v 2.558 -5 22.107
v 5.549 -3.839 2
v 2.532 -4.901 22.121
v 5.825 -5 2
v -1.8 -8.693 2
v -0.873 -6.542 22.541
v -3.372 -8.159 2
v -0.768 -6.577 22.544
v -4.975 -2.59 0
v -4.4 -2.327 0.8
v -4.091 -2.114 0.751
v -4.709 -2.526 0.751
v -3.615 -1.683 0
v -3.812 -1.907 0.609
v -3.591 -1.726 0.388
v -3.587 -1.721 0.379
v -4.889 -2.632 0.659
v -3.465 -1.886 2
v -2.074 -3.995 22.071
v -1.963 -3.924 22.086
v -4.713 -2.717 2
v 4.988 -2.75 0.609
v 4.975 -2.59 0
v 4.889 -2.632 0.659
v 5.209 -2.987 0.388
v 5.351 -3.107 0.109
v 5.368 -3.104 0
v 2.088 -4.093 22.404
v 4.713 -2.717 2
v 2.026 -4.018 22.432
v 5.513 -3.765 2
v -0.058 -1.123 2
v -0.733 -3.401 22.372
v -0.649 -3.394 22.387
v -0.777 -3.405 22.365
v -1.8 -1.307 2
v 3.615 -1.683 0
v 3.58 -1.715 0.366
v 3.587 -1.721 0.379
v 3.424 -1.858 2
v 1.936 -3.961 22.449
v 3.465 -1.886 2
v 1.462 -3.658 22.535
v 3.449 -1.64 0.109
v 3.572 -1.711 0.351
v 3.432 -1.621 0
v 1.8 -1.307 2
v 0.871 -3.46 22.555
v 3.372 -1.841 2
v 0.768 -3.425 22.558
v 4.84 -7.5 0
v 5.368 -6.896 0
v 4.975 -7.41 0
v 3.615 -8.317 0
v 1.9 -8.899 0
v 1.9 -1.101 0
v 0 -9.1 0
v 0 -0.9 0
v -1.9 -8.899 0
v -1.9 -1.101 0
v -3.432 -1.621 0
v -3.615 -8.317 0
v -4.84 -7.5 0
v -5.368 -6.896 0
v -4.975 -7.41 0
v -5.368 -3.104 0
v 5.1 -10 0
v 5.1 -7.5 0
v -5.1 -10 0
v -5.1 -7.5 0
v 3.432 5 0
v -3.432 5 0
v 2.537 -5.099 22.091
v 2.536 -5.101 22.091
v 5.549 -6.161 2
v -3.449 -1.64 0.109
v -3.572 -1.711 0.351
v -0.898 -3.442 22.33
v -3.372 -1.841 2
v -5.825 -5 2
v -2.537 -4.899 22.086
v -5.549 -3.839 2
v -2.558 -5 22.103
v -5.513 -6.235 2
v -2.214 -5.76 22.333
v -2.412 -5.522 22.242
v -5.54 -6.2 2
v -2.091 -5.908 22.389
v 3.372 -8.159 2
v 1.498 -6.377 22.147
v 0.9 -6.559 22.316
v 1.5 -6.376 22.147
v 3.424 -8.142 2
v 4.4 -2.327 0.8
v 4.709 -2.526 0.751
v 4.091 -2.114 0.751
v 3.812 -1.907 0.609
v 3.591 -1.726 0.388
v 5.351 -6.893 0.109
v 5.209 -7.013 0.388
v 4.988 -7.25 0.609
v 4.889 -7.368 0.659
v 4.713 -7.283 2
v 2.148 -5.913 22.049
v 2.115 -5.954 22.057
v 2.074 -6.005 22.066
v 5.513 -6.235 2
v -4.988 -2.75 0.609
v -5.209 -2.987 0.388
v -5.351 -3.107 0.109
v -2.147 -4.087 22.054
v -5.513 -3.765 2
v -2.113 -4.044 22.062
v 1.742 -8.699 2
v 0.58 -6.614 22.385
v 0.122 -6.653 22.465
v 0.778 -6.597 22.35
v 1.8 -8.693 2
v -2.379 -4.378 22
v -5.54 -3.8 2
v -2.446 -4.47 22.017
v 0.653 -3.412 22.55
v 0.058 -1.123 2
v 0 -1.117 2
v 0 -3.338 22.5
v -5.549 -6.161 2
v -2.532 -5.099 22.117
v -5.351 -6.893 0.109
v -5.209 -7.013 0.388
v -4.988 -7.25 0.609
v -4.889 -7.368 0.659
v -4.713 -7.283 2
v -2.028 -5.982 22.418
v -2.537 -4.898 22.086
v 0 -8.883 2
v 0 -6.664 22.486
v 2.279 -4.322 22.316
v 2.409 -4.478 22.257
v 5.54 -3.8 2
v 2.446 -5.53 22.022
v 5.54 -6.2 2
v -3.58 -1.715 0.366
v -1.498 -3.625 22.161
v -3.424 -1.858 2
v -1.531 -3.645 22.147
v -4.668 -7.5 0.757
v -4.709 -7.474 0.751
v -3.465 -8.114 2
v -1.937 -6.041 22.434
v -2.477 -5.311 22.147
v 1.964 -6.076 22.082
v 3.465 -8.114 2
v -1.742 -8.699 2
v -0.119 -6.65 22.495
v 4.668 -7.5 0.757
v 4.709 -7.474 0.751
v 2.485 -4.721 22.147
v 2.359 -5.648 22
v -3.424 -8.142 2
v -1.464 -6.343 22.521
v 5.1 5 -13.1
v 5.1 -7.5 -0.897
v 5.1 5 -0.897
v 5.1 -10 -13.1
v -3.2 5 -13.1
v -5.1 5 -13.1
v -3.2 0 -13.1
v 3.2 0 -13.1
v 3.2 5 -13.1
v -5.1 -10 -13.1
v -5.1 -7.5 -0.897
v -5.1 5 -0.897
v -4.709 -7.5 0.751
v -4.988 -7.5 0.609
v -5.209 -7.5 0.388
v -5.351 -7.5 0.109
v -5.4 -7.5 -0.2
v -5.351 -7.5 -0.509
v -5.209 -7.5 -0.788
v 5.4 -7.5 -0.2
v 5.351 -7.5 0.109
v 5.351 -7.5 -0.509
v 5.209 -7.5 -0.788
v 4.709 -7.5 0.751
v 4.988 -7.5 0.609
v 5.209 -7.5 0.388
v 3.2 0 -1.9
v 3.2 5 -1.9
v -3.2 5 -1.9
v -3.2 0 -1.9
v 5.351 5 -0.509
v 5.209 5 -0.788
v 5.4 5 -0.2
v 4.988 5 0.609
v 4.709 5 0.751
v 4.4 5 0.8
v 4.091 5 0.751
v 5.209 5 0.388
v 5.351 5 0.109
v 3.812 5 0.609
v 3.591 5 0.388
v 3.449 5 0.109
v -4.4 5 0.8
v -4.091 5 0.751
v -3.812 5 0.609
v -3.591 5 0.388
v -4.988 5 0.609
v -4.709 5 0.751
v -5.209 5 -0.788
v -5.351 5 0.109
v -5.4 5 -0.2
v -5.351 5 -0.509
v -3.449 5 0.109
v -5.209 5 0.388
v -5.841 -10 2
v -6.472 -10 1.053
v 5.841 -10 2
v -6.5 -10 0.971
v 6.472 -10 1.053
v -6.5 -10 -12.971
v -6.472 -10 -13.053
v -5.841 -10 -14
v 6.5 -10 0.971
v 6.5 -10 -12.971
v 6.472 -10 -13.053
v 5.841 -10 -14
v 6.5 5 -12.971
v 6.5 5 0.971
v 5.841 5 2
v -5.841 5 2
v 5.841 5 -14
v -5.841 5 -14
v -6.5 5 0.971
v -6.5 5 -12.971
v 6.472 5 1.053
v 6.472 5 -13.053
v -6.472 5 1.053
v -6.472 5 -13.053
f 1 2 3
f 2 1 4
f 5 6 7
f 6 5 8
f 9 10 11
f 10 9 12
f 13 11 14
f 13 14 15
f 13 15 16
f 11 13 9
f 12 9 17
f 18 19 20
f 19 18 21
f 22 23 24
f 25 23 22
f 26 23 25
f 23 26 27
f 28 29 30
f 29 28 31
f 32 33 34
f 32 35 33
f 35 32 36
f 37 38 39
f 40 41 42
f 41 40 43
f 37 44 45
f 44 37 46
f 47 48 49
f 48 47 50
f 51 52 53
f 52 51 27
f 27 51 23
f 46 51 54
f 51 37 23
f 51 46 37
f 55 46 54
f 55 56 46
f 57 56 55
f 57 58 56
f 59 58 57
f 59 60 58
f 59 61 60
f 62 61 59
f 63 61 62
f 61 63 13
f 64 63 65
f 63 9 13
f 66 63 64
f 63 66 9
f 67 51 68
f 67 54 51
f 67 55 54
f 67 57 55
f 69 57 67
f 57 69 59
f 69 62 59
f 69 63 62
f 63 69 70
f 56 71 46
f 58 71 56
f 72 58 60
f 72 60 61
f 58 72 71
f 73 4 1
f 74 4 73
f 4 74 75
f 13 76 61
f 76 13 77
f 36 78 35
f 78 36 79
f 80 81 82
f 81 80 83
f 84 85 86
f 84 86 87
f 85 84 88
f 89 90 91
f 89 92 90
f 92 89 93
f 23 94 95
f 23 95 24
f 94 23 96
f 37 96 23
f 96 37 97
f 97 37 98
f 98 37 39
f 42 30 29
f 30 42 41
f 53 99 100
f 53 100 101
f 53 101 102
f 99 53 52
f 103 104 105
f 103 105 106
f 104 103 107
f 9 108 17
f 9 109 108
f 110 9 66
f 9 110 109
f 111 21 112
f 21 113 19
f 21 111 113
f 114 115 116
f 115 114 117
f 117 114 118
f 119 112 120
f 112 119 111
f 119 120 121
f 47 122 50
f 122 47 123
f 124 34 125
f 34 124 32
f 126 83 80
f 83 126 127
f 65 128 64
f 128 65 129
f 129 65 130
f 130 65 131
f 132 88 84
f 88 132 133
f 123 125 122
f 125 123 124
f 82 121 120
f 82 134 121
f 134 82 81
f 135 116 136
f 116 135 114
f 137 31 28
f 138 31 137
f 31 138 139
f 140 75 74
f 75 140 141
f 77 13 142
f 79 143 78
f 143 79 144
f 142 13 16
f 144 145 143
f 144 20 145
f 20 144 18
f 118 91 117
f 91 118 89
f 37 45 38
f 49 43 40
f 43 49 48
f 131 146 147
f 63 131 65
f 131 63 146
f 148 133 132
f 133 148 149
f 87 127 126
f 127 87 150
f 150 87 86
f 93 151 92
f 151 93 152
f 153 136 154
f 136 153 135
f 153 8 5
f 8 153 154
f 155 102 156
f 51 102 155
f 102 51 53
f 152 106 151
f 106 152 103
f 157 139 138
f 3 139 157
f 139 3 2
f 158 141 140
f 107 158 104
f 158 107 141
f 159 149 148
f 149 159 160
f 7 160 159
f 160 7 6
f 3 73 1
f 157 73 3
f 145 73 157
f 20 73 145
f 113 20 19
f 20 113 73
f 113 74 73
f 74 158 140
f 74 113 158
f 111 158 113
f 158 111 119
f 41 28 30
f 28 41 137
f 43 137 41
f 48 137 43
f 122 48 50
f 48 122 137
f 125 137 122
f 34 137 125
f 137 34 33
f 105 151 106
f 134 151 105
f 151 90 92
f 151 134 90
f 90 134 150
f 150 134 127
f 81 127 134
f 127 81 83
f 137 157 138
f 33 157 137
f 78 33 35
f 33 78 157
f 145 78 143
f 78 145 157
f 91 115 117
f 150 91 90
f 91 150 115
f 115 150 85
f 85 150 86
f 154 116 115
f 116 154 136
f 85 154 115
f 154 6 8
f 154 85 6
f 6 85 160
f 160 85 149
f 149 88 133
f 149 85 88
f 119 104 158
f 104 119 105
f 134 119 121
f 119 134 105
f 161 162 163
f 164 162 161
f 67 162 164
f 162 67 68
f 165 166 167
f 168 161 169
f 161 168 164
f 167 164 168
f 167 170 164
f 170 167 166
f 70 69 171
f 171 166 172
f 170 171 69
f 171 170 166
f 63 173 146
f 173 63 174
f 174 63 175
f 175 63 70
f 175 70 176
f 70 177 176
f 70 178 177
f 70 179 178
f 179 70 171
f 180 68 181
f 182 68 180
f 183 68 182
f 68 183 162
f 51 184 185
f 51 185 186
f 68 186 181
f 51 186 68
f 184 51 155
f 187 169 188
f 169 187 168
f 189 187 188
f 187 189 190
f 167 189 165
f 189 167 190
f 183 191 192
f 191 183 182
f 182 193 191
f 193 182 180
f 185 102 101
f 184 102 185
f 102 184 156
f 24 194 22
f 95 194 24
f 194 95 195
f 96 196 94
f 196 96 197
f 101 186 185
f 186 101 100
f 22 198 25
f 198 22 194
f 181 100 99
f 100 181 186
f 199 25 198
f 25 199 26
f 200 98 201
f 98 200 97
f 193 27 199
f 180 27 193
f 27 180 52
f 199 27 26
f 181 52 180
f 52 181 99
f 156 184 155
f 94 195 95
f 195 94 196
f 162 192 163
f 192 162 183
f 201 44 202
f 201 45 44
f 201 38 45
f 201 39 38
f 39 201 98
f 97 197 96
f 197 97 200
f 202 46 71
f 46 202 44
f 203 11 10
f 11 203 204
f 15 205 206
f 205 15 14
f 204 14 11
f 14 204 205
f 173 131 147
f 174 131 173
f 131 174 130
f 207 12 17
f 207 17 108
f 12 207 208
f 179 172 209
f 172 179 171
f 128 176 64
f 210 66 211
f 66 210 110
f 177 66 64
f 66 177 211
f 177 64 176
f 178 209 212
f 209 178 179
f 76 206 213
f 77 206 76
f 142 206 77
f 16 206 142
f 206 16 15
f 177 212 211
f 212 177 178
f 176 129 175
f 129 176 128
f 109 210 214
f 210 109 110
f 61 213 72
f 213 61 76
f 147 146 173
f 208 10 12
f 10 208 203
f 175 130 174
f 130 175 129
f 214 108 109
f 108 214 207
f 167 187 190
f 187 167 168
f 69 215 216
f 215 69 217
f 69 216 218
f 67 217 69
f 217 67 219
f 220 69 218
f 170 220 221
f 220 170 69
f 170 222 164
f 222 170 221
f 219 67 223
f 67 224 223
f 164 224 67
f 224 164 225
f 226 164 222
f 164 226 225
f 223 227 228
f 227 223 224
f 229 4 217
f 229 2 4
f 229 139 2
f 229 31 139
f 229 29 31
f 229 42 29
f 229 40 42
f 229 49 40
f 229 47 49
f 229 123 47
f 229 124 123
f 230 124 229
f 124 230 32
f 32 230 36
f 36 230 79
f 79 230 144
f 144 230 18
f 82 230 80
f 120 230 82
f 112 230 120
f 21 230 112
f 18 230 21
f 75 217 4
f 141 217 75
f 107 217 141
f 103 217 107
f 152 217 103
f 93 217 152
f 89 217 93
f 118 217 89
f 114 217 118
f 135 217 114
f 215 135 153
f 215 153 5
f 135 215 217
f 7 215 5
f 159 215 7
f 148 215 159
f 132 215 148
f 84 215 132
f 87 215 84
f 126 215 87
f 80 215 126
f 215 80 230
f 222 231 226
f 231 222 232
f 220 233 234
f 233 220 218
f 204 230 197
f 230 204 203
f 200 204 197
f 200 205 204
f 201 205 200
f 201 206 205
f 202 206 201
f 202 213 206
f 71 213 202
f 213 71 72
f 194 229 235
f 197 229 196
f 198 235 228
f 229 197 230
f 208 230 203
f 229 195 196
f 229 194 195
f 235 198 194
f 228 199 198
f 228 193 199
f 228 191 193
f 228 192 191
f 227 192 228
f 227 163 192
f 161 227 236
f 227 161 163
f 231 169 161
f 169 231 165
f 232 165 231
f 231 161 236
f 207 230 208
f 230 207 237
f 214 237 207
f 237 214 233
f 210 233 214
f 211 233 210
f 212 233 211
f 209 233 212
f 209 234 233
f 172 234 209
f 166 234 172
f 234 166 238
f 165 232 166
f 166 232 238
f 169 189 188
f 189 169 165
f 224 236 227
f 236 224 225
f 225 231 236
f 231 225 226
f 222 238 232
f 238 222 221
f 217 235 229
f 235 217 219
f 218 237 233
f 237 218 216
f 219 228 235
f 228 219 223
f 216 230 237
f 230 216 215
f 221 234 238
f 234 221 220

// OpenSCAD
//include <irkem_TPUtip_v2.scad>
tol = 0.2;
extrWall = 1.7+tol;
extrH = 12.9+tol;//12.6+tol;
extrW = 10+tol;

hammerY = 15;//20;
hammerZ = 24;

$fn = 20;

module hammerTips(){
//Strike cylinder:
//v1: made elliptical and added skew-angle indentation to:
//      1. Avoid hitting adjacent strings
//      2. Maximize likelihood of striking proper string
//      3. Ensure that hammer tip force on the string is centering
//Prior cone geometry resulted in adjacent string strikes in y axis for most keys
    //difference(){
    //    translate([0,-5,0]) scale([2.6,1,1]) cylinder(hammerZ,2.5,2);
    //    translate([-12,-1.8,25]) rotate([0,90,-15]) cylinder(hammerZ,3,3);
    //}
    difference(){
        translate([0,-5,0]) scale([1.5,1,1]) cylinder(hammerZ,4.1,1.5);
        translate([-12,-1.8,25]) rotate([0,90,-15]) cylinder(hammerZ,3,3);
    }
intersection(){    
    translate([0,-10,-6]) scale([1,1,1.5]) rotate([-90,0,0]) cylinder(20,8,8);
difference(){
    translate([-6.5,-10,-14]) cube([13,hammerY,16]);
    union(){uChan();translate([-extrW/2,-10,-extrH]) cube([extrW,10,extrH]);
}
//difference(){
//    translate([-6.5,-10,-14]) cube([13,hammerY,16]);
//    union(){uChan();translate([-extrW/2,-hammerY/2,-extrH]) cube([extrW,hammerY/2,extrH]);
//}
}
}
module uChan(){
difference(){
    translate([-extrW/2,-hammerY/2,-extrH]) cube([extrW,hammerY,extrH]);
    translate([-extrW/2+extrWall,-hammerY/2,-extrH-extrWall]) cube([extrW-2*extrWall,hammerY,extrH]);
}
translate([4.4,-hammerY/2,-0.2]) rotate([-90,0,0]) cylinder(hammerY,1,1);
translate([-4.4,-hammerY/2,-0.2]) rotate([-90,0,0]) cylinder(hammerY,1,1);
}
//color("gray") translate([0,-5,23]) rotate([0,180,0]) TPUtip();
}

hammerTips();
//color("gray") translate([0,-5,23]) rotate([0,180,0]) TPUtip();
